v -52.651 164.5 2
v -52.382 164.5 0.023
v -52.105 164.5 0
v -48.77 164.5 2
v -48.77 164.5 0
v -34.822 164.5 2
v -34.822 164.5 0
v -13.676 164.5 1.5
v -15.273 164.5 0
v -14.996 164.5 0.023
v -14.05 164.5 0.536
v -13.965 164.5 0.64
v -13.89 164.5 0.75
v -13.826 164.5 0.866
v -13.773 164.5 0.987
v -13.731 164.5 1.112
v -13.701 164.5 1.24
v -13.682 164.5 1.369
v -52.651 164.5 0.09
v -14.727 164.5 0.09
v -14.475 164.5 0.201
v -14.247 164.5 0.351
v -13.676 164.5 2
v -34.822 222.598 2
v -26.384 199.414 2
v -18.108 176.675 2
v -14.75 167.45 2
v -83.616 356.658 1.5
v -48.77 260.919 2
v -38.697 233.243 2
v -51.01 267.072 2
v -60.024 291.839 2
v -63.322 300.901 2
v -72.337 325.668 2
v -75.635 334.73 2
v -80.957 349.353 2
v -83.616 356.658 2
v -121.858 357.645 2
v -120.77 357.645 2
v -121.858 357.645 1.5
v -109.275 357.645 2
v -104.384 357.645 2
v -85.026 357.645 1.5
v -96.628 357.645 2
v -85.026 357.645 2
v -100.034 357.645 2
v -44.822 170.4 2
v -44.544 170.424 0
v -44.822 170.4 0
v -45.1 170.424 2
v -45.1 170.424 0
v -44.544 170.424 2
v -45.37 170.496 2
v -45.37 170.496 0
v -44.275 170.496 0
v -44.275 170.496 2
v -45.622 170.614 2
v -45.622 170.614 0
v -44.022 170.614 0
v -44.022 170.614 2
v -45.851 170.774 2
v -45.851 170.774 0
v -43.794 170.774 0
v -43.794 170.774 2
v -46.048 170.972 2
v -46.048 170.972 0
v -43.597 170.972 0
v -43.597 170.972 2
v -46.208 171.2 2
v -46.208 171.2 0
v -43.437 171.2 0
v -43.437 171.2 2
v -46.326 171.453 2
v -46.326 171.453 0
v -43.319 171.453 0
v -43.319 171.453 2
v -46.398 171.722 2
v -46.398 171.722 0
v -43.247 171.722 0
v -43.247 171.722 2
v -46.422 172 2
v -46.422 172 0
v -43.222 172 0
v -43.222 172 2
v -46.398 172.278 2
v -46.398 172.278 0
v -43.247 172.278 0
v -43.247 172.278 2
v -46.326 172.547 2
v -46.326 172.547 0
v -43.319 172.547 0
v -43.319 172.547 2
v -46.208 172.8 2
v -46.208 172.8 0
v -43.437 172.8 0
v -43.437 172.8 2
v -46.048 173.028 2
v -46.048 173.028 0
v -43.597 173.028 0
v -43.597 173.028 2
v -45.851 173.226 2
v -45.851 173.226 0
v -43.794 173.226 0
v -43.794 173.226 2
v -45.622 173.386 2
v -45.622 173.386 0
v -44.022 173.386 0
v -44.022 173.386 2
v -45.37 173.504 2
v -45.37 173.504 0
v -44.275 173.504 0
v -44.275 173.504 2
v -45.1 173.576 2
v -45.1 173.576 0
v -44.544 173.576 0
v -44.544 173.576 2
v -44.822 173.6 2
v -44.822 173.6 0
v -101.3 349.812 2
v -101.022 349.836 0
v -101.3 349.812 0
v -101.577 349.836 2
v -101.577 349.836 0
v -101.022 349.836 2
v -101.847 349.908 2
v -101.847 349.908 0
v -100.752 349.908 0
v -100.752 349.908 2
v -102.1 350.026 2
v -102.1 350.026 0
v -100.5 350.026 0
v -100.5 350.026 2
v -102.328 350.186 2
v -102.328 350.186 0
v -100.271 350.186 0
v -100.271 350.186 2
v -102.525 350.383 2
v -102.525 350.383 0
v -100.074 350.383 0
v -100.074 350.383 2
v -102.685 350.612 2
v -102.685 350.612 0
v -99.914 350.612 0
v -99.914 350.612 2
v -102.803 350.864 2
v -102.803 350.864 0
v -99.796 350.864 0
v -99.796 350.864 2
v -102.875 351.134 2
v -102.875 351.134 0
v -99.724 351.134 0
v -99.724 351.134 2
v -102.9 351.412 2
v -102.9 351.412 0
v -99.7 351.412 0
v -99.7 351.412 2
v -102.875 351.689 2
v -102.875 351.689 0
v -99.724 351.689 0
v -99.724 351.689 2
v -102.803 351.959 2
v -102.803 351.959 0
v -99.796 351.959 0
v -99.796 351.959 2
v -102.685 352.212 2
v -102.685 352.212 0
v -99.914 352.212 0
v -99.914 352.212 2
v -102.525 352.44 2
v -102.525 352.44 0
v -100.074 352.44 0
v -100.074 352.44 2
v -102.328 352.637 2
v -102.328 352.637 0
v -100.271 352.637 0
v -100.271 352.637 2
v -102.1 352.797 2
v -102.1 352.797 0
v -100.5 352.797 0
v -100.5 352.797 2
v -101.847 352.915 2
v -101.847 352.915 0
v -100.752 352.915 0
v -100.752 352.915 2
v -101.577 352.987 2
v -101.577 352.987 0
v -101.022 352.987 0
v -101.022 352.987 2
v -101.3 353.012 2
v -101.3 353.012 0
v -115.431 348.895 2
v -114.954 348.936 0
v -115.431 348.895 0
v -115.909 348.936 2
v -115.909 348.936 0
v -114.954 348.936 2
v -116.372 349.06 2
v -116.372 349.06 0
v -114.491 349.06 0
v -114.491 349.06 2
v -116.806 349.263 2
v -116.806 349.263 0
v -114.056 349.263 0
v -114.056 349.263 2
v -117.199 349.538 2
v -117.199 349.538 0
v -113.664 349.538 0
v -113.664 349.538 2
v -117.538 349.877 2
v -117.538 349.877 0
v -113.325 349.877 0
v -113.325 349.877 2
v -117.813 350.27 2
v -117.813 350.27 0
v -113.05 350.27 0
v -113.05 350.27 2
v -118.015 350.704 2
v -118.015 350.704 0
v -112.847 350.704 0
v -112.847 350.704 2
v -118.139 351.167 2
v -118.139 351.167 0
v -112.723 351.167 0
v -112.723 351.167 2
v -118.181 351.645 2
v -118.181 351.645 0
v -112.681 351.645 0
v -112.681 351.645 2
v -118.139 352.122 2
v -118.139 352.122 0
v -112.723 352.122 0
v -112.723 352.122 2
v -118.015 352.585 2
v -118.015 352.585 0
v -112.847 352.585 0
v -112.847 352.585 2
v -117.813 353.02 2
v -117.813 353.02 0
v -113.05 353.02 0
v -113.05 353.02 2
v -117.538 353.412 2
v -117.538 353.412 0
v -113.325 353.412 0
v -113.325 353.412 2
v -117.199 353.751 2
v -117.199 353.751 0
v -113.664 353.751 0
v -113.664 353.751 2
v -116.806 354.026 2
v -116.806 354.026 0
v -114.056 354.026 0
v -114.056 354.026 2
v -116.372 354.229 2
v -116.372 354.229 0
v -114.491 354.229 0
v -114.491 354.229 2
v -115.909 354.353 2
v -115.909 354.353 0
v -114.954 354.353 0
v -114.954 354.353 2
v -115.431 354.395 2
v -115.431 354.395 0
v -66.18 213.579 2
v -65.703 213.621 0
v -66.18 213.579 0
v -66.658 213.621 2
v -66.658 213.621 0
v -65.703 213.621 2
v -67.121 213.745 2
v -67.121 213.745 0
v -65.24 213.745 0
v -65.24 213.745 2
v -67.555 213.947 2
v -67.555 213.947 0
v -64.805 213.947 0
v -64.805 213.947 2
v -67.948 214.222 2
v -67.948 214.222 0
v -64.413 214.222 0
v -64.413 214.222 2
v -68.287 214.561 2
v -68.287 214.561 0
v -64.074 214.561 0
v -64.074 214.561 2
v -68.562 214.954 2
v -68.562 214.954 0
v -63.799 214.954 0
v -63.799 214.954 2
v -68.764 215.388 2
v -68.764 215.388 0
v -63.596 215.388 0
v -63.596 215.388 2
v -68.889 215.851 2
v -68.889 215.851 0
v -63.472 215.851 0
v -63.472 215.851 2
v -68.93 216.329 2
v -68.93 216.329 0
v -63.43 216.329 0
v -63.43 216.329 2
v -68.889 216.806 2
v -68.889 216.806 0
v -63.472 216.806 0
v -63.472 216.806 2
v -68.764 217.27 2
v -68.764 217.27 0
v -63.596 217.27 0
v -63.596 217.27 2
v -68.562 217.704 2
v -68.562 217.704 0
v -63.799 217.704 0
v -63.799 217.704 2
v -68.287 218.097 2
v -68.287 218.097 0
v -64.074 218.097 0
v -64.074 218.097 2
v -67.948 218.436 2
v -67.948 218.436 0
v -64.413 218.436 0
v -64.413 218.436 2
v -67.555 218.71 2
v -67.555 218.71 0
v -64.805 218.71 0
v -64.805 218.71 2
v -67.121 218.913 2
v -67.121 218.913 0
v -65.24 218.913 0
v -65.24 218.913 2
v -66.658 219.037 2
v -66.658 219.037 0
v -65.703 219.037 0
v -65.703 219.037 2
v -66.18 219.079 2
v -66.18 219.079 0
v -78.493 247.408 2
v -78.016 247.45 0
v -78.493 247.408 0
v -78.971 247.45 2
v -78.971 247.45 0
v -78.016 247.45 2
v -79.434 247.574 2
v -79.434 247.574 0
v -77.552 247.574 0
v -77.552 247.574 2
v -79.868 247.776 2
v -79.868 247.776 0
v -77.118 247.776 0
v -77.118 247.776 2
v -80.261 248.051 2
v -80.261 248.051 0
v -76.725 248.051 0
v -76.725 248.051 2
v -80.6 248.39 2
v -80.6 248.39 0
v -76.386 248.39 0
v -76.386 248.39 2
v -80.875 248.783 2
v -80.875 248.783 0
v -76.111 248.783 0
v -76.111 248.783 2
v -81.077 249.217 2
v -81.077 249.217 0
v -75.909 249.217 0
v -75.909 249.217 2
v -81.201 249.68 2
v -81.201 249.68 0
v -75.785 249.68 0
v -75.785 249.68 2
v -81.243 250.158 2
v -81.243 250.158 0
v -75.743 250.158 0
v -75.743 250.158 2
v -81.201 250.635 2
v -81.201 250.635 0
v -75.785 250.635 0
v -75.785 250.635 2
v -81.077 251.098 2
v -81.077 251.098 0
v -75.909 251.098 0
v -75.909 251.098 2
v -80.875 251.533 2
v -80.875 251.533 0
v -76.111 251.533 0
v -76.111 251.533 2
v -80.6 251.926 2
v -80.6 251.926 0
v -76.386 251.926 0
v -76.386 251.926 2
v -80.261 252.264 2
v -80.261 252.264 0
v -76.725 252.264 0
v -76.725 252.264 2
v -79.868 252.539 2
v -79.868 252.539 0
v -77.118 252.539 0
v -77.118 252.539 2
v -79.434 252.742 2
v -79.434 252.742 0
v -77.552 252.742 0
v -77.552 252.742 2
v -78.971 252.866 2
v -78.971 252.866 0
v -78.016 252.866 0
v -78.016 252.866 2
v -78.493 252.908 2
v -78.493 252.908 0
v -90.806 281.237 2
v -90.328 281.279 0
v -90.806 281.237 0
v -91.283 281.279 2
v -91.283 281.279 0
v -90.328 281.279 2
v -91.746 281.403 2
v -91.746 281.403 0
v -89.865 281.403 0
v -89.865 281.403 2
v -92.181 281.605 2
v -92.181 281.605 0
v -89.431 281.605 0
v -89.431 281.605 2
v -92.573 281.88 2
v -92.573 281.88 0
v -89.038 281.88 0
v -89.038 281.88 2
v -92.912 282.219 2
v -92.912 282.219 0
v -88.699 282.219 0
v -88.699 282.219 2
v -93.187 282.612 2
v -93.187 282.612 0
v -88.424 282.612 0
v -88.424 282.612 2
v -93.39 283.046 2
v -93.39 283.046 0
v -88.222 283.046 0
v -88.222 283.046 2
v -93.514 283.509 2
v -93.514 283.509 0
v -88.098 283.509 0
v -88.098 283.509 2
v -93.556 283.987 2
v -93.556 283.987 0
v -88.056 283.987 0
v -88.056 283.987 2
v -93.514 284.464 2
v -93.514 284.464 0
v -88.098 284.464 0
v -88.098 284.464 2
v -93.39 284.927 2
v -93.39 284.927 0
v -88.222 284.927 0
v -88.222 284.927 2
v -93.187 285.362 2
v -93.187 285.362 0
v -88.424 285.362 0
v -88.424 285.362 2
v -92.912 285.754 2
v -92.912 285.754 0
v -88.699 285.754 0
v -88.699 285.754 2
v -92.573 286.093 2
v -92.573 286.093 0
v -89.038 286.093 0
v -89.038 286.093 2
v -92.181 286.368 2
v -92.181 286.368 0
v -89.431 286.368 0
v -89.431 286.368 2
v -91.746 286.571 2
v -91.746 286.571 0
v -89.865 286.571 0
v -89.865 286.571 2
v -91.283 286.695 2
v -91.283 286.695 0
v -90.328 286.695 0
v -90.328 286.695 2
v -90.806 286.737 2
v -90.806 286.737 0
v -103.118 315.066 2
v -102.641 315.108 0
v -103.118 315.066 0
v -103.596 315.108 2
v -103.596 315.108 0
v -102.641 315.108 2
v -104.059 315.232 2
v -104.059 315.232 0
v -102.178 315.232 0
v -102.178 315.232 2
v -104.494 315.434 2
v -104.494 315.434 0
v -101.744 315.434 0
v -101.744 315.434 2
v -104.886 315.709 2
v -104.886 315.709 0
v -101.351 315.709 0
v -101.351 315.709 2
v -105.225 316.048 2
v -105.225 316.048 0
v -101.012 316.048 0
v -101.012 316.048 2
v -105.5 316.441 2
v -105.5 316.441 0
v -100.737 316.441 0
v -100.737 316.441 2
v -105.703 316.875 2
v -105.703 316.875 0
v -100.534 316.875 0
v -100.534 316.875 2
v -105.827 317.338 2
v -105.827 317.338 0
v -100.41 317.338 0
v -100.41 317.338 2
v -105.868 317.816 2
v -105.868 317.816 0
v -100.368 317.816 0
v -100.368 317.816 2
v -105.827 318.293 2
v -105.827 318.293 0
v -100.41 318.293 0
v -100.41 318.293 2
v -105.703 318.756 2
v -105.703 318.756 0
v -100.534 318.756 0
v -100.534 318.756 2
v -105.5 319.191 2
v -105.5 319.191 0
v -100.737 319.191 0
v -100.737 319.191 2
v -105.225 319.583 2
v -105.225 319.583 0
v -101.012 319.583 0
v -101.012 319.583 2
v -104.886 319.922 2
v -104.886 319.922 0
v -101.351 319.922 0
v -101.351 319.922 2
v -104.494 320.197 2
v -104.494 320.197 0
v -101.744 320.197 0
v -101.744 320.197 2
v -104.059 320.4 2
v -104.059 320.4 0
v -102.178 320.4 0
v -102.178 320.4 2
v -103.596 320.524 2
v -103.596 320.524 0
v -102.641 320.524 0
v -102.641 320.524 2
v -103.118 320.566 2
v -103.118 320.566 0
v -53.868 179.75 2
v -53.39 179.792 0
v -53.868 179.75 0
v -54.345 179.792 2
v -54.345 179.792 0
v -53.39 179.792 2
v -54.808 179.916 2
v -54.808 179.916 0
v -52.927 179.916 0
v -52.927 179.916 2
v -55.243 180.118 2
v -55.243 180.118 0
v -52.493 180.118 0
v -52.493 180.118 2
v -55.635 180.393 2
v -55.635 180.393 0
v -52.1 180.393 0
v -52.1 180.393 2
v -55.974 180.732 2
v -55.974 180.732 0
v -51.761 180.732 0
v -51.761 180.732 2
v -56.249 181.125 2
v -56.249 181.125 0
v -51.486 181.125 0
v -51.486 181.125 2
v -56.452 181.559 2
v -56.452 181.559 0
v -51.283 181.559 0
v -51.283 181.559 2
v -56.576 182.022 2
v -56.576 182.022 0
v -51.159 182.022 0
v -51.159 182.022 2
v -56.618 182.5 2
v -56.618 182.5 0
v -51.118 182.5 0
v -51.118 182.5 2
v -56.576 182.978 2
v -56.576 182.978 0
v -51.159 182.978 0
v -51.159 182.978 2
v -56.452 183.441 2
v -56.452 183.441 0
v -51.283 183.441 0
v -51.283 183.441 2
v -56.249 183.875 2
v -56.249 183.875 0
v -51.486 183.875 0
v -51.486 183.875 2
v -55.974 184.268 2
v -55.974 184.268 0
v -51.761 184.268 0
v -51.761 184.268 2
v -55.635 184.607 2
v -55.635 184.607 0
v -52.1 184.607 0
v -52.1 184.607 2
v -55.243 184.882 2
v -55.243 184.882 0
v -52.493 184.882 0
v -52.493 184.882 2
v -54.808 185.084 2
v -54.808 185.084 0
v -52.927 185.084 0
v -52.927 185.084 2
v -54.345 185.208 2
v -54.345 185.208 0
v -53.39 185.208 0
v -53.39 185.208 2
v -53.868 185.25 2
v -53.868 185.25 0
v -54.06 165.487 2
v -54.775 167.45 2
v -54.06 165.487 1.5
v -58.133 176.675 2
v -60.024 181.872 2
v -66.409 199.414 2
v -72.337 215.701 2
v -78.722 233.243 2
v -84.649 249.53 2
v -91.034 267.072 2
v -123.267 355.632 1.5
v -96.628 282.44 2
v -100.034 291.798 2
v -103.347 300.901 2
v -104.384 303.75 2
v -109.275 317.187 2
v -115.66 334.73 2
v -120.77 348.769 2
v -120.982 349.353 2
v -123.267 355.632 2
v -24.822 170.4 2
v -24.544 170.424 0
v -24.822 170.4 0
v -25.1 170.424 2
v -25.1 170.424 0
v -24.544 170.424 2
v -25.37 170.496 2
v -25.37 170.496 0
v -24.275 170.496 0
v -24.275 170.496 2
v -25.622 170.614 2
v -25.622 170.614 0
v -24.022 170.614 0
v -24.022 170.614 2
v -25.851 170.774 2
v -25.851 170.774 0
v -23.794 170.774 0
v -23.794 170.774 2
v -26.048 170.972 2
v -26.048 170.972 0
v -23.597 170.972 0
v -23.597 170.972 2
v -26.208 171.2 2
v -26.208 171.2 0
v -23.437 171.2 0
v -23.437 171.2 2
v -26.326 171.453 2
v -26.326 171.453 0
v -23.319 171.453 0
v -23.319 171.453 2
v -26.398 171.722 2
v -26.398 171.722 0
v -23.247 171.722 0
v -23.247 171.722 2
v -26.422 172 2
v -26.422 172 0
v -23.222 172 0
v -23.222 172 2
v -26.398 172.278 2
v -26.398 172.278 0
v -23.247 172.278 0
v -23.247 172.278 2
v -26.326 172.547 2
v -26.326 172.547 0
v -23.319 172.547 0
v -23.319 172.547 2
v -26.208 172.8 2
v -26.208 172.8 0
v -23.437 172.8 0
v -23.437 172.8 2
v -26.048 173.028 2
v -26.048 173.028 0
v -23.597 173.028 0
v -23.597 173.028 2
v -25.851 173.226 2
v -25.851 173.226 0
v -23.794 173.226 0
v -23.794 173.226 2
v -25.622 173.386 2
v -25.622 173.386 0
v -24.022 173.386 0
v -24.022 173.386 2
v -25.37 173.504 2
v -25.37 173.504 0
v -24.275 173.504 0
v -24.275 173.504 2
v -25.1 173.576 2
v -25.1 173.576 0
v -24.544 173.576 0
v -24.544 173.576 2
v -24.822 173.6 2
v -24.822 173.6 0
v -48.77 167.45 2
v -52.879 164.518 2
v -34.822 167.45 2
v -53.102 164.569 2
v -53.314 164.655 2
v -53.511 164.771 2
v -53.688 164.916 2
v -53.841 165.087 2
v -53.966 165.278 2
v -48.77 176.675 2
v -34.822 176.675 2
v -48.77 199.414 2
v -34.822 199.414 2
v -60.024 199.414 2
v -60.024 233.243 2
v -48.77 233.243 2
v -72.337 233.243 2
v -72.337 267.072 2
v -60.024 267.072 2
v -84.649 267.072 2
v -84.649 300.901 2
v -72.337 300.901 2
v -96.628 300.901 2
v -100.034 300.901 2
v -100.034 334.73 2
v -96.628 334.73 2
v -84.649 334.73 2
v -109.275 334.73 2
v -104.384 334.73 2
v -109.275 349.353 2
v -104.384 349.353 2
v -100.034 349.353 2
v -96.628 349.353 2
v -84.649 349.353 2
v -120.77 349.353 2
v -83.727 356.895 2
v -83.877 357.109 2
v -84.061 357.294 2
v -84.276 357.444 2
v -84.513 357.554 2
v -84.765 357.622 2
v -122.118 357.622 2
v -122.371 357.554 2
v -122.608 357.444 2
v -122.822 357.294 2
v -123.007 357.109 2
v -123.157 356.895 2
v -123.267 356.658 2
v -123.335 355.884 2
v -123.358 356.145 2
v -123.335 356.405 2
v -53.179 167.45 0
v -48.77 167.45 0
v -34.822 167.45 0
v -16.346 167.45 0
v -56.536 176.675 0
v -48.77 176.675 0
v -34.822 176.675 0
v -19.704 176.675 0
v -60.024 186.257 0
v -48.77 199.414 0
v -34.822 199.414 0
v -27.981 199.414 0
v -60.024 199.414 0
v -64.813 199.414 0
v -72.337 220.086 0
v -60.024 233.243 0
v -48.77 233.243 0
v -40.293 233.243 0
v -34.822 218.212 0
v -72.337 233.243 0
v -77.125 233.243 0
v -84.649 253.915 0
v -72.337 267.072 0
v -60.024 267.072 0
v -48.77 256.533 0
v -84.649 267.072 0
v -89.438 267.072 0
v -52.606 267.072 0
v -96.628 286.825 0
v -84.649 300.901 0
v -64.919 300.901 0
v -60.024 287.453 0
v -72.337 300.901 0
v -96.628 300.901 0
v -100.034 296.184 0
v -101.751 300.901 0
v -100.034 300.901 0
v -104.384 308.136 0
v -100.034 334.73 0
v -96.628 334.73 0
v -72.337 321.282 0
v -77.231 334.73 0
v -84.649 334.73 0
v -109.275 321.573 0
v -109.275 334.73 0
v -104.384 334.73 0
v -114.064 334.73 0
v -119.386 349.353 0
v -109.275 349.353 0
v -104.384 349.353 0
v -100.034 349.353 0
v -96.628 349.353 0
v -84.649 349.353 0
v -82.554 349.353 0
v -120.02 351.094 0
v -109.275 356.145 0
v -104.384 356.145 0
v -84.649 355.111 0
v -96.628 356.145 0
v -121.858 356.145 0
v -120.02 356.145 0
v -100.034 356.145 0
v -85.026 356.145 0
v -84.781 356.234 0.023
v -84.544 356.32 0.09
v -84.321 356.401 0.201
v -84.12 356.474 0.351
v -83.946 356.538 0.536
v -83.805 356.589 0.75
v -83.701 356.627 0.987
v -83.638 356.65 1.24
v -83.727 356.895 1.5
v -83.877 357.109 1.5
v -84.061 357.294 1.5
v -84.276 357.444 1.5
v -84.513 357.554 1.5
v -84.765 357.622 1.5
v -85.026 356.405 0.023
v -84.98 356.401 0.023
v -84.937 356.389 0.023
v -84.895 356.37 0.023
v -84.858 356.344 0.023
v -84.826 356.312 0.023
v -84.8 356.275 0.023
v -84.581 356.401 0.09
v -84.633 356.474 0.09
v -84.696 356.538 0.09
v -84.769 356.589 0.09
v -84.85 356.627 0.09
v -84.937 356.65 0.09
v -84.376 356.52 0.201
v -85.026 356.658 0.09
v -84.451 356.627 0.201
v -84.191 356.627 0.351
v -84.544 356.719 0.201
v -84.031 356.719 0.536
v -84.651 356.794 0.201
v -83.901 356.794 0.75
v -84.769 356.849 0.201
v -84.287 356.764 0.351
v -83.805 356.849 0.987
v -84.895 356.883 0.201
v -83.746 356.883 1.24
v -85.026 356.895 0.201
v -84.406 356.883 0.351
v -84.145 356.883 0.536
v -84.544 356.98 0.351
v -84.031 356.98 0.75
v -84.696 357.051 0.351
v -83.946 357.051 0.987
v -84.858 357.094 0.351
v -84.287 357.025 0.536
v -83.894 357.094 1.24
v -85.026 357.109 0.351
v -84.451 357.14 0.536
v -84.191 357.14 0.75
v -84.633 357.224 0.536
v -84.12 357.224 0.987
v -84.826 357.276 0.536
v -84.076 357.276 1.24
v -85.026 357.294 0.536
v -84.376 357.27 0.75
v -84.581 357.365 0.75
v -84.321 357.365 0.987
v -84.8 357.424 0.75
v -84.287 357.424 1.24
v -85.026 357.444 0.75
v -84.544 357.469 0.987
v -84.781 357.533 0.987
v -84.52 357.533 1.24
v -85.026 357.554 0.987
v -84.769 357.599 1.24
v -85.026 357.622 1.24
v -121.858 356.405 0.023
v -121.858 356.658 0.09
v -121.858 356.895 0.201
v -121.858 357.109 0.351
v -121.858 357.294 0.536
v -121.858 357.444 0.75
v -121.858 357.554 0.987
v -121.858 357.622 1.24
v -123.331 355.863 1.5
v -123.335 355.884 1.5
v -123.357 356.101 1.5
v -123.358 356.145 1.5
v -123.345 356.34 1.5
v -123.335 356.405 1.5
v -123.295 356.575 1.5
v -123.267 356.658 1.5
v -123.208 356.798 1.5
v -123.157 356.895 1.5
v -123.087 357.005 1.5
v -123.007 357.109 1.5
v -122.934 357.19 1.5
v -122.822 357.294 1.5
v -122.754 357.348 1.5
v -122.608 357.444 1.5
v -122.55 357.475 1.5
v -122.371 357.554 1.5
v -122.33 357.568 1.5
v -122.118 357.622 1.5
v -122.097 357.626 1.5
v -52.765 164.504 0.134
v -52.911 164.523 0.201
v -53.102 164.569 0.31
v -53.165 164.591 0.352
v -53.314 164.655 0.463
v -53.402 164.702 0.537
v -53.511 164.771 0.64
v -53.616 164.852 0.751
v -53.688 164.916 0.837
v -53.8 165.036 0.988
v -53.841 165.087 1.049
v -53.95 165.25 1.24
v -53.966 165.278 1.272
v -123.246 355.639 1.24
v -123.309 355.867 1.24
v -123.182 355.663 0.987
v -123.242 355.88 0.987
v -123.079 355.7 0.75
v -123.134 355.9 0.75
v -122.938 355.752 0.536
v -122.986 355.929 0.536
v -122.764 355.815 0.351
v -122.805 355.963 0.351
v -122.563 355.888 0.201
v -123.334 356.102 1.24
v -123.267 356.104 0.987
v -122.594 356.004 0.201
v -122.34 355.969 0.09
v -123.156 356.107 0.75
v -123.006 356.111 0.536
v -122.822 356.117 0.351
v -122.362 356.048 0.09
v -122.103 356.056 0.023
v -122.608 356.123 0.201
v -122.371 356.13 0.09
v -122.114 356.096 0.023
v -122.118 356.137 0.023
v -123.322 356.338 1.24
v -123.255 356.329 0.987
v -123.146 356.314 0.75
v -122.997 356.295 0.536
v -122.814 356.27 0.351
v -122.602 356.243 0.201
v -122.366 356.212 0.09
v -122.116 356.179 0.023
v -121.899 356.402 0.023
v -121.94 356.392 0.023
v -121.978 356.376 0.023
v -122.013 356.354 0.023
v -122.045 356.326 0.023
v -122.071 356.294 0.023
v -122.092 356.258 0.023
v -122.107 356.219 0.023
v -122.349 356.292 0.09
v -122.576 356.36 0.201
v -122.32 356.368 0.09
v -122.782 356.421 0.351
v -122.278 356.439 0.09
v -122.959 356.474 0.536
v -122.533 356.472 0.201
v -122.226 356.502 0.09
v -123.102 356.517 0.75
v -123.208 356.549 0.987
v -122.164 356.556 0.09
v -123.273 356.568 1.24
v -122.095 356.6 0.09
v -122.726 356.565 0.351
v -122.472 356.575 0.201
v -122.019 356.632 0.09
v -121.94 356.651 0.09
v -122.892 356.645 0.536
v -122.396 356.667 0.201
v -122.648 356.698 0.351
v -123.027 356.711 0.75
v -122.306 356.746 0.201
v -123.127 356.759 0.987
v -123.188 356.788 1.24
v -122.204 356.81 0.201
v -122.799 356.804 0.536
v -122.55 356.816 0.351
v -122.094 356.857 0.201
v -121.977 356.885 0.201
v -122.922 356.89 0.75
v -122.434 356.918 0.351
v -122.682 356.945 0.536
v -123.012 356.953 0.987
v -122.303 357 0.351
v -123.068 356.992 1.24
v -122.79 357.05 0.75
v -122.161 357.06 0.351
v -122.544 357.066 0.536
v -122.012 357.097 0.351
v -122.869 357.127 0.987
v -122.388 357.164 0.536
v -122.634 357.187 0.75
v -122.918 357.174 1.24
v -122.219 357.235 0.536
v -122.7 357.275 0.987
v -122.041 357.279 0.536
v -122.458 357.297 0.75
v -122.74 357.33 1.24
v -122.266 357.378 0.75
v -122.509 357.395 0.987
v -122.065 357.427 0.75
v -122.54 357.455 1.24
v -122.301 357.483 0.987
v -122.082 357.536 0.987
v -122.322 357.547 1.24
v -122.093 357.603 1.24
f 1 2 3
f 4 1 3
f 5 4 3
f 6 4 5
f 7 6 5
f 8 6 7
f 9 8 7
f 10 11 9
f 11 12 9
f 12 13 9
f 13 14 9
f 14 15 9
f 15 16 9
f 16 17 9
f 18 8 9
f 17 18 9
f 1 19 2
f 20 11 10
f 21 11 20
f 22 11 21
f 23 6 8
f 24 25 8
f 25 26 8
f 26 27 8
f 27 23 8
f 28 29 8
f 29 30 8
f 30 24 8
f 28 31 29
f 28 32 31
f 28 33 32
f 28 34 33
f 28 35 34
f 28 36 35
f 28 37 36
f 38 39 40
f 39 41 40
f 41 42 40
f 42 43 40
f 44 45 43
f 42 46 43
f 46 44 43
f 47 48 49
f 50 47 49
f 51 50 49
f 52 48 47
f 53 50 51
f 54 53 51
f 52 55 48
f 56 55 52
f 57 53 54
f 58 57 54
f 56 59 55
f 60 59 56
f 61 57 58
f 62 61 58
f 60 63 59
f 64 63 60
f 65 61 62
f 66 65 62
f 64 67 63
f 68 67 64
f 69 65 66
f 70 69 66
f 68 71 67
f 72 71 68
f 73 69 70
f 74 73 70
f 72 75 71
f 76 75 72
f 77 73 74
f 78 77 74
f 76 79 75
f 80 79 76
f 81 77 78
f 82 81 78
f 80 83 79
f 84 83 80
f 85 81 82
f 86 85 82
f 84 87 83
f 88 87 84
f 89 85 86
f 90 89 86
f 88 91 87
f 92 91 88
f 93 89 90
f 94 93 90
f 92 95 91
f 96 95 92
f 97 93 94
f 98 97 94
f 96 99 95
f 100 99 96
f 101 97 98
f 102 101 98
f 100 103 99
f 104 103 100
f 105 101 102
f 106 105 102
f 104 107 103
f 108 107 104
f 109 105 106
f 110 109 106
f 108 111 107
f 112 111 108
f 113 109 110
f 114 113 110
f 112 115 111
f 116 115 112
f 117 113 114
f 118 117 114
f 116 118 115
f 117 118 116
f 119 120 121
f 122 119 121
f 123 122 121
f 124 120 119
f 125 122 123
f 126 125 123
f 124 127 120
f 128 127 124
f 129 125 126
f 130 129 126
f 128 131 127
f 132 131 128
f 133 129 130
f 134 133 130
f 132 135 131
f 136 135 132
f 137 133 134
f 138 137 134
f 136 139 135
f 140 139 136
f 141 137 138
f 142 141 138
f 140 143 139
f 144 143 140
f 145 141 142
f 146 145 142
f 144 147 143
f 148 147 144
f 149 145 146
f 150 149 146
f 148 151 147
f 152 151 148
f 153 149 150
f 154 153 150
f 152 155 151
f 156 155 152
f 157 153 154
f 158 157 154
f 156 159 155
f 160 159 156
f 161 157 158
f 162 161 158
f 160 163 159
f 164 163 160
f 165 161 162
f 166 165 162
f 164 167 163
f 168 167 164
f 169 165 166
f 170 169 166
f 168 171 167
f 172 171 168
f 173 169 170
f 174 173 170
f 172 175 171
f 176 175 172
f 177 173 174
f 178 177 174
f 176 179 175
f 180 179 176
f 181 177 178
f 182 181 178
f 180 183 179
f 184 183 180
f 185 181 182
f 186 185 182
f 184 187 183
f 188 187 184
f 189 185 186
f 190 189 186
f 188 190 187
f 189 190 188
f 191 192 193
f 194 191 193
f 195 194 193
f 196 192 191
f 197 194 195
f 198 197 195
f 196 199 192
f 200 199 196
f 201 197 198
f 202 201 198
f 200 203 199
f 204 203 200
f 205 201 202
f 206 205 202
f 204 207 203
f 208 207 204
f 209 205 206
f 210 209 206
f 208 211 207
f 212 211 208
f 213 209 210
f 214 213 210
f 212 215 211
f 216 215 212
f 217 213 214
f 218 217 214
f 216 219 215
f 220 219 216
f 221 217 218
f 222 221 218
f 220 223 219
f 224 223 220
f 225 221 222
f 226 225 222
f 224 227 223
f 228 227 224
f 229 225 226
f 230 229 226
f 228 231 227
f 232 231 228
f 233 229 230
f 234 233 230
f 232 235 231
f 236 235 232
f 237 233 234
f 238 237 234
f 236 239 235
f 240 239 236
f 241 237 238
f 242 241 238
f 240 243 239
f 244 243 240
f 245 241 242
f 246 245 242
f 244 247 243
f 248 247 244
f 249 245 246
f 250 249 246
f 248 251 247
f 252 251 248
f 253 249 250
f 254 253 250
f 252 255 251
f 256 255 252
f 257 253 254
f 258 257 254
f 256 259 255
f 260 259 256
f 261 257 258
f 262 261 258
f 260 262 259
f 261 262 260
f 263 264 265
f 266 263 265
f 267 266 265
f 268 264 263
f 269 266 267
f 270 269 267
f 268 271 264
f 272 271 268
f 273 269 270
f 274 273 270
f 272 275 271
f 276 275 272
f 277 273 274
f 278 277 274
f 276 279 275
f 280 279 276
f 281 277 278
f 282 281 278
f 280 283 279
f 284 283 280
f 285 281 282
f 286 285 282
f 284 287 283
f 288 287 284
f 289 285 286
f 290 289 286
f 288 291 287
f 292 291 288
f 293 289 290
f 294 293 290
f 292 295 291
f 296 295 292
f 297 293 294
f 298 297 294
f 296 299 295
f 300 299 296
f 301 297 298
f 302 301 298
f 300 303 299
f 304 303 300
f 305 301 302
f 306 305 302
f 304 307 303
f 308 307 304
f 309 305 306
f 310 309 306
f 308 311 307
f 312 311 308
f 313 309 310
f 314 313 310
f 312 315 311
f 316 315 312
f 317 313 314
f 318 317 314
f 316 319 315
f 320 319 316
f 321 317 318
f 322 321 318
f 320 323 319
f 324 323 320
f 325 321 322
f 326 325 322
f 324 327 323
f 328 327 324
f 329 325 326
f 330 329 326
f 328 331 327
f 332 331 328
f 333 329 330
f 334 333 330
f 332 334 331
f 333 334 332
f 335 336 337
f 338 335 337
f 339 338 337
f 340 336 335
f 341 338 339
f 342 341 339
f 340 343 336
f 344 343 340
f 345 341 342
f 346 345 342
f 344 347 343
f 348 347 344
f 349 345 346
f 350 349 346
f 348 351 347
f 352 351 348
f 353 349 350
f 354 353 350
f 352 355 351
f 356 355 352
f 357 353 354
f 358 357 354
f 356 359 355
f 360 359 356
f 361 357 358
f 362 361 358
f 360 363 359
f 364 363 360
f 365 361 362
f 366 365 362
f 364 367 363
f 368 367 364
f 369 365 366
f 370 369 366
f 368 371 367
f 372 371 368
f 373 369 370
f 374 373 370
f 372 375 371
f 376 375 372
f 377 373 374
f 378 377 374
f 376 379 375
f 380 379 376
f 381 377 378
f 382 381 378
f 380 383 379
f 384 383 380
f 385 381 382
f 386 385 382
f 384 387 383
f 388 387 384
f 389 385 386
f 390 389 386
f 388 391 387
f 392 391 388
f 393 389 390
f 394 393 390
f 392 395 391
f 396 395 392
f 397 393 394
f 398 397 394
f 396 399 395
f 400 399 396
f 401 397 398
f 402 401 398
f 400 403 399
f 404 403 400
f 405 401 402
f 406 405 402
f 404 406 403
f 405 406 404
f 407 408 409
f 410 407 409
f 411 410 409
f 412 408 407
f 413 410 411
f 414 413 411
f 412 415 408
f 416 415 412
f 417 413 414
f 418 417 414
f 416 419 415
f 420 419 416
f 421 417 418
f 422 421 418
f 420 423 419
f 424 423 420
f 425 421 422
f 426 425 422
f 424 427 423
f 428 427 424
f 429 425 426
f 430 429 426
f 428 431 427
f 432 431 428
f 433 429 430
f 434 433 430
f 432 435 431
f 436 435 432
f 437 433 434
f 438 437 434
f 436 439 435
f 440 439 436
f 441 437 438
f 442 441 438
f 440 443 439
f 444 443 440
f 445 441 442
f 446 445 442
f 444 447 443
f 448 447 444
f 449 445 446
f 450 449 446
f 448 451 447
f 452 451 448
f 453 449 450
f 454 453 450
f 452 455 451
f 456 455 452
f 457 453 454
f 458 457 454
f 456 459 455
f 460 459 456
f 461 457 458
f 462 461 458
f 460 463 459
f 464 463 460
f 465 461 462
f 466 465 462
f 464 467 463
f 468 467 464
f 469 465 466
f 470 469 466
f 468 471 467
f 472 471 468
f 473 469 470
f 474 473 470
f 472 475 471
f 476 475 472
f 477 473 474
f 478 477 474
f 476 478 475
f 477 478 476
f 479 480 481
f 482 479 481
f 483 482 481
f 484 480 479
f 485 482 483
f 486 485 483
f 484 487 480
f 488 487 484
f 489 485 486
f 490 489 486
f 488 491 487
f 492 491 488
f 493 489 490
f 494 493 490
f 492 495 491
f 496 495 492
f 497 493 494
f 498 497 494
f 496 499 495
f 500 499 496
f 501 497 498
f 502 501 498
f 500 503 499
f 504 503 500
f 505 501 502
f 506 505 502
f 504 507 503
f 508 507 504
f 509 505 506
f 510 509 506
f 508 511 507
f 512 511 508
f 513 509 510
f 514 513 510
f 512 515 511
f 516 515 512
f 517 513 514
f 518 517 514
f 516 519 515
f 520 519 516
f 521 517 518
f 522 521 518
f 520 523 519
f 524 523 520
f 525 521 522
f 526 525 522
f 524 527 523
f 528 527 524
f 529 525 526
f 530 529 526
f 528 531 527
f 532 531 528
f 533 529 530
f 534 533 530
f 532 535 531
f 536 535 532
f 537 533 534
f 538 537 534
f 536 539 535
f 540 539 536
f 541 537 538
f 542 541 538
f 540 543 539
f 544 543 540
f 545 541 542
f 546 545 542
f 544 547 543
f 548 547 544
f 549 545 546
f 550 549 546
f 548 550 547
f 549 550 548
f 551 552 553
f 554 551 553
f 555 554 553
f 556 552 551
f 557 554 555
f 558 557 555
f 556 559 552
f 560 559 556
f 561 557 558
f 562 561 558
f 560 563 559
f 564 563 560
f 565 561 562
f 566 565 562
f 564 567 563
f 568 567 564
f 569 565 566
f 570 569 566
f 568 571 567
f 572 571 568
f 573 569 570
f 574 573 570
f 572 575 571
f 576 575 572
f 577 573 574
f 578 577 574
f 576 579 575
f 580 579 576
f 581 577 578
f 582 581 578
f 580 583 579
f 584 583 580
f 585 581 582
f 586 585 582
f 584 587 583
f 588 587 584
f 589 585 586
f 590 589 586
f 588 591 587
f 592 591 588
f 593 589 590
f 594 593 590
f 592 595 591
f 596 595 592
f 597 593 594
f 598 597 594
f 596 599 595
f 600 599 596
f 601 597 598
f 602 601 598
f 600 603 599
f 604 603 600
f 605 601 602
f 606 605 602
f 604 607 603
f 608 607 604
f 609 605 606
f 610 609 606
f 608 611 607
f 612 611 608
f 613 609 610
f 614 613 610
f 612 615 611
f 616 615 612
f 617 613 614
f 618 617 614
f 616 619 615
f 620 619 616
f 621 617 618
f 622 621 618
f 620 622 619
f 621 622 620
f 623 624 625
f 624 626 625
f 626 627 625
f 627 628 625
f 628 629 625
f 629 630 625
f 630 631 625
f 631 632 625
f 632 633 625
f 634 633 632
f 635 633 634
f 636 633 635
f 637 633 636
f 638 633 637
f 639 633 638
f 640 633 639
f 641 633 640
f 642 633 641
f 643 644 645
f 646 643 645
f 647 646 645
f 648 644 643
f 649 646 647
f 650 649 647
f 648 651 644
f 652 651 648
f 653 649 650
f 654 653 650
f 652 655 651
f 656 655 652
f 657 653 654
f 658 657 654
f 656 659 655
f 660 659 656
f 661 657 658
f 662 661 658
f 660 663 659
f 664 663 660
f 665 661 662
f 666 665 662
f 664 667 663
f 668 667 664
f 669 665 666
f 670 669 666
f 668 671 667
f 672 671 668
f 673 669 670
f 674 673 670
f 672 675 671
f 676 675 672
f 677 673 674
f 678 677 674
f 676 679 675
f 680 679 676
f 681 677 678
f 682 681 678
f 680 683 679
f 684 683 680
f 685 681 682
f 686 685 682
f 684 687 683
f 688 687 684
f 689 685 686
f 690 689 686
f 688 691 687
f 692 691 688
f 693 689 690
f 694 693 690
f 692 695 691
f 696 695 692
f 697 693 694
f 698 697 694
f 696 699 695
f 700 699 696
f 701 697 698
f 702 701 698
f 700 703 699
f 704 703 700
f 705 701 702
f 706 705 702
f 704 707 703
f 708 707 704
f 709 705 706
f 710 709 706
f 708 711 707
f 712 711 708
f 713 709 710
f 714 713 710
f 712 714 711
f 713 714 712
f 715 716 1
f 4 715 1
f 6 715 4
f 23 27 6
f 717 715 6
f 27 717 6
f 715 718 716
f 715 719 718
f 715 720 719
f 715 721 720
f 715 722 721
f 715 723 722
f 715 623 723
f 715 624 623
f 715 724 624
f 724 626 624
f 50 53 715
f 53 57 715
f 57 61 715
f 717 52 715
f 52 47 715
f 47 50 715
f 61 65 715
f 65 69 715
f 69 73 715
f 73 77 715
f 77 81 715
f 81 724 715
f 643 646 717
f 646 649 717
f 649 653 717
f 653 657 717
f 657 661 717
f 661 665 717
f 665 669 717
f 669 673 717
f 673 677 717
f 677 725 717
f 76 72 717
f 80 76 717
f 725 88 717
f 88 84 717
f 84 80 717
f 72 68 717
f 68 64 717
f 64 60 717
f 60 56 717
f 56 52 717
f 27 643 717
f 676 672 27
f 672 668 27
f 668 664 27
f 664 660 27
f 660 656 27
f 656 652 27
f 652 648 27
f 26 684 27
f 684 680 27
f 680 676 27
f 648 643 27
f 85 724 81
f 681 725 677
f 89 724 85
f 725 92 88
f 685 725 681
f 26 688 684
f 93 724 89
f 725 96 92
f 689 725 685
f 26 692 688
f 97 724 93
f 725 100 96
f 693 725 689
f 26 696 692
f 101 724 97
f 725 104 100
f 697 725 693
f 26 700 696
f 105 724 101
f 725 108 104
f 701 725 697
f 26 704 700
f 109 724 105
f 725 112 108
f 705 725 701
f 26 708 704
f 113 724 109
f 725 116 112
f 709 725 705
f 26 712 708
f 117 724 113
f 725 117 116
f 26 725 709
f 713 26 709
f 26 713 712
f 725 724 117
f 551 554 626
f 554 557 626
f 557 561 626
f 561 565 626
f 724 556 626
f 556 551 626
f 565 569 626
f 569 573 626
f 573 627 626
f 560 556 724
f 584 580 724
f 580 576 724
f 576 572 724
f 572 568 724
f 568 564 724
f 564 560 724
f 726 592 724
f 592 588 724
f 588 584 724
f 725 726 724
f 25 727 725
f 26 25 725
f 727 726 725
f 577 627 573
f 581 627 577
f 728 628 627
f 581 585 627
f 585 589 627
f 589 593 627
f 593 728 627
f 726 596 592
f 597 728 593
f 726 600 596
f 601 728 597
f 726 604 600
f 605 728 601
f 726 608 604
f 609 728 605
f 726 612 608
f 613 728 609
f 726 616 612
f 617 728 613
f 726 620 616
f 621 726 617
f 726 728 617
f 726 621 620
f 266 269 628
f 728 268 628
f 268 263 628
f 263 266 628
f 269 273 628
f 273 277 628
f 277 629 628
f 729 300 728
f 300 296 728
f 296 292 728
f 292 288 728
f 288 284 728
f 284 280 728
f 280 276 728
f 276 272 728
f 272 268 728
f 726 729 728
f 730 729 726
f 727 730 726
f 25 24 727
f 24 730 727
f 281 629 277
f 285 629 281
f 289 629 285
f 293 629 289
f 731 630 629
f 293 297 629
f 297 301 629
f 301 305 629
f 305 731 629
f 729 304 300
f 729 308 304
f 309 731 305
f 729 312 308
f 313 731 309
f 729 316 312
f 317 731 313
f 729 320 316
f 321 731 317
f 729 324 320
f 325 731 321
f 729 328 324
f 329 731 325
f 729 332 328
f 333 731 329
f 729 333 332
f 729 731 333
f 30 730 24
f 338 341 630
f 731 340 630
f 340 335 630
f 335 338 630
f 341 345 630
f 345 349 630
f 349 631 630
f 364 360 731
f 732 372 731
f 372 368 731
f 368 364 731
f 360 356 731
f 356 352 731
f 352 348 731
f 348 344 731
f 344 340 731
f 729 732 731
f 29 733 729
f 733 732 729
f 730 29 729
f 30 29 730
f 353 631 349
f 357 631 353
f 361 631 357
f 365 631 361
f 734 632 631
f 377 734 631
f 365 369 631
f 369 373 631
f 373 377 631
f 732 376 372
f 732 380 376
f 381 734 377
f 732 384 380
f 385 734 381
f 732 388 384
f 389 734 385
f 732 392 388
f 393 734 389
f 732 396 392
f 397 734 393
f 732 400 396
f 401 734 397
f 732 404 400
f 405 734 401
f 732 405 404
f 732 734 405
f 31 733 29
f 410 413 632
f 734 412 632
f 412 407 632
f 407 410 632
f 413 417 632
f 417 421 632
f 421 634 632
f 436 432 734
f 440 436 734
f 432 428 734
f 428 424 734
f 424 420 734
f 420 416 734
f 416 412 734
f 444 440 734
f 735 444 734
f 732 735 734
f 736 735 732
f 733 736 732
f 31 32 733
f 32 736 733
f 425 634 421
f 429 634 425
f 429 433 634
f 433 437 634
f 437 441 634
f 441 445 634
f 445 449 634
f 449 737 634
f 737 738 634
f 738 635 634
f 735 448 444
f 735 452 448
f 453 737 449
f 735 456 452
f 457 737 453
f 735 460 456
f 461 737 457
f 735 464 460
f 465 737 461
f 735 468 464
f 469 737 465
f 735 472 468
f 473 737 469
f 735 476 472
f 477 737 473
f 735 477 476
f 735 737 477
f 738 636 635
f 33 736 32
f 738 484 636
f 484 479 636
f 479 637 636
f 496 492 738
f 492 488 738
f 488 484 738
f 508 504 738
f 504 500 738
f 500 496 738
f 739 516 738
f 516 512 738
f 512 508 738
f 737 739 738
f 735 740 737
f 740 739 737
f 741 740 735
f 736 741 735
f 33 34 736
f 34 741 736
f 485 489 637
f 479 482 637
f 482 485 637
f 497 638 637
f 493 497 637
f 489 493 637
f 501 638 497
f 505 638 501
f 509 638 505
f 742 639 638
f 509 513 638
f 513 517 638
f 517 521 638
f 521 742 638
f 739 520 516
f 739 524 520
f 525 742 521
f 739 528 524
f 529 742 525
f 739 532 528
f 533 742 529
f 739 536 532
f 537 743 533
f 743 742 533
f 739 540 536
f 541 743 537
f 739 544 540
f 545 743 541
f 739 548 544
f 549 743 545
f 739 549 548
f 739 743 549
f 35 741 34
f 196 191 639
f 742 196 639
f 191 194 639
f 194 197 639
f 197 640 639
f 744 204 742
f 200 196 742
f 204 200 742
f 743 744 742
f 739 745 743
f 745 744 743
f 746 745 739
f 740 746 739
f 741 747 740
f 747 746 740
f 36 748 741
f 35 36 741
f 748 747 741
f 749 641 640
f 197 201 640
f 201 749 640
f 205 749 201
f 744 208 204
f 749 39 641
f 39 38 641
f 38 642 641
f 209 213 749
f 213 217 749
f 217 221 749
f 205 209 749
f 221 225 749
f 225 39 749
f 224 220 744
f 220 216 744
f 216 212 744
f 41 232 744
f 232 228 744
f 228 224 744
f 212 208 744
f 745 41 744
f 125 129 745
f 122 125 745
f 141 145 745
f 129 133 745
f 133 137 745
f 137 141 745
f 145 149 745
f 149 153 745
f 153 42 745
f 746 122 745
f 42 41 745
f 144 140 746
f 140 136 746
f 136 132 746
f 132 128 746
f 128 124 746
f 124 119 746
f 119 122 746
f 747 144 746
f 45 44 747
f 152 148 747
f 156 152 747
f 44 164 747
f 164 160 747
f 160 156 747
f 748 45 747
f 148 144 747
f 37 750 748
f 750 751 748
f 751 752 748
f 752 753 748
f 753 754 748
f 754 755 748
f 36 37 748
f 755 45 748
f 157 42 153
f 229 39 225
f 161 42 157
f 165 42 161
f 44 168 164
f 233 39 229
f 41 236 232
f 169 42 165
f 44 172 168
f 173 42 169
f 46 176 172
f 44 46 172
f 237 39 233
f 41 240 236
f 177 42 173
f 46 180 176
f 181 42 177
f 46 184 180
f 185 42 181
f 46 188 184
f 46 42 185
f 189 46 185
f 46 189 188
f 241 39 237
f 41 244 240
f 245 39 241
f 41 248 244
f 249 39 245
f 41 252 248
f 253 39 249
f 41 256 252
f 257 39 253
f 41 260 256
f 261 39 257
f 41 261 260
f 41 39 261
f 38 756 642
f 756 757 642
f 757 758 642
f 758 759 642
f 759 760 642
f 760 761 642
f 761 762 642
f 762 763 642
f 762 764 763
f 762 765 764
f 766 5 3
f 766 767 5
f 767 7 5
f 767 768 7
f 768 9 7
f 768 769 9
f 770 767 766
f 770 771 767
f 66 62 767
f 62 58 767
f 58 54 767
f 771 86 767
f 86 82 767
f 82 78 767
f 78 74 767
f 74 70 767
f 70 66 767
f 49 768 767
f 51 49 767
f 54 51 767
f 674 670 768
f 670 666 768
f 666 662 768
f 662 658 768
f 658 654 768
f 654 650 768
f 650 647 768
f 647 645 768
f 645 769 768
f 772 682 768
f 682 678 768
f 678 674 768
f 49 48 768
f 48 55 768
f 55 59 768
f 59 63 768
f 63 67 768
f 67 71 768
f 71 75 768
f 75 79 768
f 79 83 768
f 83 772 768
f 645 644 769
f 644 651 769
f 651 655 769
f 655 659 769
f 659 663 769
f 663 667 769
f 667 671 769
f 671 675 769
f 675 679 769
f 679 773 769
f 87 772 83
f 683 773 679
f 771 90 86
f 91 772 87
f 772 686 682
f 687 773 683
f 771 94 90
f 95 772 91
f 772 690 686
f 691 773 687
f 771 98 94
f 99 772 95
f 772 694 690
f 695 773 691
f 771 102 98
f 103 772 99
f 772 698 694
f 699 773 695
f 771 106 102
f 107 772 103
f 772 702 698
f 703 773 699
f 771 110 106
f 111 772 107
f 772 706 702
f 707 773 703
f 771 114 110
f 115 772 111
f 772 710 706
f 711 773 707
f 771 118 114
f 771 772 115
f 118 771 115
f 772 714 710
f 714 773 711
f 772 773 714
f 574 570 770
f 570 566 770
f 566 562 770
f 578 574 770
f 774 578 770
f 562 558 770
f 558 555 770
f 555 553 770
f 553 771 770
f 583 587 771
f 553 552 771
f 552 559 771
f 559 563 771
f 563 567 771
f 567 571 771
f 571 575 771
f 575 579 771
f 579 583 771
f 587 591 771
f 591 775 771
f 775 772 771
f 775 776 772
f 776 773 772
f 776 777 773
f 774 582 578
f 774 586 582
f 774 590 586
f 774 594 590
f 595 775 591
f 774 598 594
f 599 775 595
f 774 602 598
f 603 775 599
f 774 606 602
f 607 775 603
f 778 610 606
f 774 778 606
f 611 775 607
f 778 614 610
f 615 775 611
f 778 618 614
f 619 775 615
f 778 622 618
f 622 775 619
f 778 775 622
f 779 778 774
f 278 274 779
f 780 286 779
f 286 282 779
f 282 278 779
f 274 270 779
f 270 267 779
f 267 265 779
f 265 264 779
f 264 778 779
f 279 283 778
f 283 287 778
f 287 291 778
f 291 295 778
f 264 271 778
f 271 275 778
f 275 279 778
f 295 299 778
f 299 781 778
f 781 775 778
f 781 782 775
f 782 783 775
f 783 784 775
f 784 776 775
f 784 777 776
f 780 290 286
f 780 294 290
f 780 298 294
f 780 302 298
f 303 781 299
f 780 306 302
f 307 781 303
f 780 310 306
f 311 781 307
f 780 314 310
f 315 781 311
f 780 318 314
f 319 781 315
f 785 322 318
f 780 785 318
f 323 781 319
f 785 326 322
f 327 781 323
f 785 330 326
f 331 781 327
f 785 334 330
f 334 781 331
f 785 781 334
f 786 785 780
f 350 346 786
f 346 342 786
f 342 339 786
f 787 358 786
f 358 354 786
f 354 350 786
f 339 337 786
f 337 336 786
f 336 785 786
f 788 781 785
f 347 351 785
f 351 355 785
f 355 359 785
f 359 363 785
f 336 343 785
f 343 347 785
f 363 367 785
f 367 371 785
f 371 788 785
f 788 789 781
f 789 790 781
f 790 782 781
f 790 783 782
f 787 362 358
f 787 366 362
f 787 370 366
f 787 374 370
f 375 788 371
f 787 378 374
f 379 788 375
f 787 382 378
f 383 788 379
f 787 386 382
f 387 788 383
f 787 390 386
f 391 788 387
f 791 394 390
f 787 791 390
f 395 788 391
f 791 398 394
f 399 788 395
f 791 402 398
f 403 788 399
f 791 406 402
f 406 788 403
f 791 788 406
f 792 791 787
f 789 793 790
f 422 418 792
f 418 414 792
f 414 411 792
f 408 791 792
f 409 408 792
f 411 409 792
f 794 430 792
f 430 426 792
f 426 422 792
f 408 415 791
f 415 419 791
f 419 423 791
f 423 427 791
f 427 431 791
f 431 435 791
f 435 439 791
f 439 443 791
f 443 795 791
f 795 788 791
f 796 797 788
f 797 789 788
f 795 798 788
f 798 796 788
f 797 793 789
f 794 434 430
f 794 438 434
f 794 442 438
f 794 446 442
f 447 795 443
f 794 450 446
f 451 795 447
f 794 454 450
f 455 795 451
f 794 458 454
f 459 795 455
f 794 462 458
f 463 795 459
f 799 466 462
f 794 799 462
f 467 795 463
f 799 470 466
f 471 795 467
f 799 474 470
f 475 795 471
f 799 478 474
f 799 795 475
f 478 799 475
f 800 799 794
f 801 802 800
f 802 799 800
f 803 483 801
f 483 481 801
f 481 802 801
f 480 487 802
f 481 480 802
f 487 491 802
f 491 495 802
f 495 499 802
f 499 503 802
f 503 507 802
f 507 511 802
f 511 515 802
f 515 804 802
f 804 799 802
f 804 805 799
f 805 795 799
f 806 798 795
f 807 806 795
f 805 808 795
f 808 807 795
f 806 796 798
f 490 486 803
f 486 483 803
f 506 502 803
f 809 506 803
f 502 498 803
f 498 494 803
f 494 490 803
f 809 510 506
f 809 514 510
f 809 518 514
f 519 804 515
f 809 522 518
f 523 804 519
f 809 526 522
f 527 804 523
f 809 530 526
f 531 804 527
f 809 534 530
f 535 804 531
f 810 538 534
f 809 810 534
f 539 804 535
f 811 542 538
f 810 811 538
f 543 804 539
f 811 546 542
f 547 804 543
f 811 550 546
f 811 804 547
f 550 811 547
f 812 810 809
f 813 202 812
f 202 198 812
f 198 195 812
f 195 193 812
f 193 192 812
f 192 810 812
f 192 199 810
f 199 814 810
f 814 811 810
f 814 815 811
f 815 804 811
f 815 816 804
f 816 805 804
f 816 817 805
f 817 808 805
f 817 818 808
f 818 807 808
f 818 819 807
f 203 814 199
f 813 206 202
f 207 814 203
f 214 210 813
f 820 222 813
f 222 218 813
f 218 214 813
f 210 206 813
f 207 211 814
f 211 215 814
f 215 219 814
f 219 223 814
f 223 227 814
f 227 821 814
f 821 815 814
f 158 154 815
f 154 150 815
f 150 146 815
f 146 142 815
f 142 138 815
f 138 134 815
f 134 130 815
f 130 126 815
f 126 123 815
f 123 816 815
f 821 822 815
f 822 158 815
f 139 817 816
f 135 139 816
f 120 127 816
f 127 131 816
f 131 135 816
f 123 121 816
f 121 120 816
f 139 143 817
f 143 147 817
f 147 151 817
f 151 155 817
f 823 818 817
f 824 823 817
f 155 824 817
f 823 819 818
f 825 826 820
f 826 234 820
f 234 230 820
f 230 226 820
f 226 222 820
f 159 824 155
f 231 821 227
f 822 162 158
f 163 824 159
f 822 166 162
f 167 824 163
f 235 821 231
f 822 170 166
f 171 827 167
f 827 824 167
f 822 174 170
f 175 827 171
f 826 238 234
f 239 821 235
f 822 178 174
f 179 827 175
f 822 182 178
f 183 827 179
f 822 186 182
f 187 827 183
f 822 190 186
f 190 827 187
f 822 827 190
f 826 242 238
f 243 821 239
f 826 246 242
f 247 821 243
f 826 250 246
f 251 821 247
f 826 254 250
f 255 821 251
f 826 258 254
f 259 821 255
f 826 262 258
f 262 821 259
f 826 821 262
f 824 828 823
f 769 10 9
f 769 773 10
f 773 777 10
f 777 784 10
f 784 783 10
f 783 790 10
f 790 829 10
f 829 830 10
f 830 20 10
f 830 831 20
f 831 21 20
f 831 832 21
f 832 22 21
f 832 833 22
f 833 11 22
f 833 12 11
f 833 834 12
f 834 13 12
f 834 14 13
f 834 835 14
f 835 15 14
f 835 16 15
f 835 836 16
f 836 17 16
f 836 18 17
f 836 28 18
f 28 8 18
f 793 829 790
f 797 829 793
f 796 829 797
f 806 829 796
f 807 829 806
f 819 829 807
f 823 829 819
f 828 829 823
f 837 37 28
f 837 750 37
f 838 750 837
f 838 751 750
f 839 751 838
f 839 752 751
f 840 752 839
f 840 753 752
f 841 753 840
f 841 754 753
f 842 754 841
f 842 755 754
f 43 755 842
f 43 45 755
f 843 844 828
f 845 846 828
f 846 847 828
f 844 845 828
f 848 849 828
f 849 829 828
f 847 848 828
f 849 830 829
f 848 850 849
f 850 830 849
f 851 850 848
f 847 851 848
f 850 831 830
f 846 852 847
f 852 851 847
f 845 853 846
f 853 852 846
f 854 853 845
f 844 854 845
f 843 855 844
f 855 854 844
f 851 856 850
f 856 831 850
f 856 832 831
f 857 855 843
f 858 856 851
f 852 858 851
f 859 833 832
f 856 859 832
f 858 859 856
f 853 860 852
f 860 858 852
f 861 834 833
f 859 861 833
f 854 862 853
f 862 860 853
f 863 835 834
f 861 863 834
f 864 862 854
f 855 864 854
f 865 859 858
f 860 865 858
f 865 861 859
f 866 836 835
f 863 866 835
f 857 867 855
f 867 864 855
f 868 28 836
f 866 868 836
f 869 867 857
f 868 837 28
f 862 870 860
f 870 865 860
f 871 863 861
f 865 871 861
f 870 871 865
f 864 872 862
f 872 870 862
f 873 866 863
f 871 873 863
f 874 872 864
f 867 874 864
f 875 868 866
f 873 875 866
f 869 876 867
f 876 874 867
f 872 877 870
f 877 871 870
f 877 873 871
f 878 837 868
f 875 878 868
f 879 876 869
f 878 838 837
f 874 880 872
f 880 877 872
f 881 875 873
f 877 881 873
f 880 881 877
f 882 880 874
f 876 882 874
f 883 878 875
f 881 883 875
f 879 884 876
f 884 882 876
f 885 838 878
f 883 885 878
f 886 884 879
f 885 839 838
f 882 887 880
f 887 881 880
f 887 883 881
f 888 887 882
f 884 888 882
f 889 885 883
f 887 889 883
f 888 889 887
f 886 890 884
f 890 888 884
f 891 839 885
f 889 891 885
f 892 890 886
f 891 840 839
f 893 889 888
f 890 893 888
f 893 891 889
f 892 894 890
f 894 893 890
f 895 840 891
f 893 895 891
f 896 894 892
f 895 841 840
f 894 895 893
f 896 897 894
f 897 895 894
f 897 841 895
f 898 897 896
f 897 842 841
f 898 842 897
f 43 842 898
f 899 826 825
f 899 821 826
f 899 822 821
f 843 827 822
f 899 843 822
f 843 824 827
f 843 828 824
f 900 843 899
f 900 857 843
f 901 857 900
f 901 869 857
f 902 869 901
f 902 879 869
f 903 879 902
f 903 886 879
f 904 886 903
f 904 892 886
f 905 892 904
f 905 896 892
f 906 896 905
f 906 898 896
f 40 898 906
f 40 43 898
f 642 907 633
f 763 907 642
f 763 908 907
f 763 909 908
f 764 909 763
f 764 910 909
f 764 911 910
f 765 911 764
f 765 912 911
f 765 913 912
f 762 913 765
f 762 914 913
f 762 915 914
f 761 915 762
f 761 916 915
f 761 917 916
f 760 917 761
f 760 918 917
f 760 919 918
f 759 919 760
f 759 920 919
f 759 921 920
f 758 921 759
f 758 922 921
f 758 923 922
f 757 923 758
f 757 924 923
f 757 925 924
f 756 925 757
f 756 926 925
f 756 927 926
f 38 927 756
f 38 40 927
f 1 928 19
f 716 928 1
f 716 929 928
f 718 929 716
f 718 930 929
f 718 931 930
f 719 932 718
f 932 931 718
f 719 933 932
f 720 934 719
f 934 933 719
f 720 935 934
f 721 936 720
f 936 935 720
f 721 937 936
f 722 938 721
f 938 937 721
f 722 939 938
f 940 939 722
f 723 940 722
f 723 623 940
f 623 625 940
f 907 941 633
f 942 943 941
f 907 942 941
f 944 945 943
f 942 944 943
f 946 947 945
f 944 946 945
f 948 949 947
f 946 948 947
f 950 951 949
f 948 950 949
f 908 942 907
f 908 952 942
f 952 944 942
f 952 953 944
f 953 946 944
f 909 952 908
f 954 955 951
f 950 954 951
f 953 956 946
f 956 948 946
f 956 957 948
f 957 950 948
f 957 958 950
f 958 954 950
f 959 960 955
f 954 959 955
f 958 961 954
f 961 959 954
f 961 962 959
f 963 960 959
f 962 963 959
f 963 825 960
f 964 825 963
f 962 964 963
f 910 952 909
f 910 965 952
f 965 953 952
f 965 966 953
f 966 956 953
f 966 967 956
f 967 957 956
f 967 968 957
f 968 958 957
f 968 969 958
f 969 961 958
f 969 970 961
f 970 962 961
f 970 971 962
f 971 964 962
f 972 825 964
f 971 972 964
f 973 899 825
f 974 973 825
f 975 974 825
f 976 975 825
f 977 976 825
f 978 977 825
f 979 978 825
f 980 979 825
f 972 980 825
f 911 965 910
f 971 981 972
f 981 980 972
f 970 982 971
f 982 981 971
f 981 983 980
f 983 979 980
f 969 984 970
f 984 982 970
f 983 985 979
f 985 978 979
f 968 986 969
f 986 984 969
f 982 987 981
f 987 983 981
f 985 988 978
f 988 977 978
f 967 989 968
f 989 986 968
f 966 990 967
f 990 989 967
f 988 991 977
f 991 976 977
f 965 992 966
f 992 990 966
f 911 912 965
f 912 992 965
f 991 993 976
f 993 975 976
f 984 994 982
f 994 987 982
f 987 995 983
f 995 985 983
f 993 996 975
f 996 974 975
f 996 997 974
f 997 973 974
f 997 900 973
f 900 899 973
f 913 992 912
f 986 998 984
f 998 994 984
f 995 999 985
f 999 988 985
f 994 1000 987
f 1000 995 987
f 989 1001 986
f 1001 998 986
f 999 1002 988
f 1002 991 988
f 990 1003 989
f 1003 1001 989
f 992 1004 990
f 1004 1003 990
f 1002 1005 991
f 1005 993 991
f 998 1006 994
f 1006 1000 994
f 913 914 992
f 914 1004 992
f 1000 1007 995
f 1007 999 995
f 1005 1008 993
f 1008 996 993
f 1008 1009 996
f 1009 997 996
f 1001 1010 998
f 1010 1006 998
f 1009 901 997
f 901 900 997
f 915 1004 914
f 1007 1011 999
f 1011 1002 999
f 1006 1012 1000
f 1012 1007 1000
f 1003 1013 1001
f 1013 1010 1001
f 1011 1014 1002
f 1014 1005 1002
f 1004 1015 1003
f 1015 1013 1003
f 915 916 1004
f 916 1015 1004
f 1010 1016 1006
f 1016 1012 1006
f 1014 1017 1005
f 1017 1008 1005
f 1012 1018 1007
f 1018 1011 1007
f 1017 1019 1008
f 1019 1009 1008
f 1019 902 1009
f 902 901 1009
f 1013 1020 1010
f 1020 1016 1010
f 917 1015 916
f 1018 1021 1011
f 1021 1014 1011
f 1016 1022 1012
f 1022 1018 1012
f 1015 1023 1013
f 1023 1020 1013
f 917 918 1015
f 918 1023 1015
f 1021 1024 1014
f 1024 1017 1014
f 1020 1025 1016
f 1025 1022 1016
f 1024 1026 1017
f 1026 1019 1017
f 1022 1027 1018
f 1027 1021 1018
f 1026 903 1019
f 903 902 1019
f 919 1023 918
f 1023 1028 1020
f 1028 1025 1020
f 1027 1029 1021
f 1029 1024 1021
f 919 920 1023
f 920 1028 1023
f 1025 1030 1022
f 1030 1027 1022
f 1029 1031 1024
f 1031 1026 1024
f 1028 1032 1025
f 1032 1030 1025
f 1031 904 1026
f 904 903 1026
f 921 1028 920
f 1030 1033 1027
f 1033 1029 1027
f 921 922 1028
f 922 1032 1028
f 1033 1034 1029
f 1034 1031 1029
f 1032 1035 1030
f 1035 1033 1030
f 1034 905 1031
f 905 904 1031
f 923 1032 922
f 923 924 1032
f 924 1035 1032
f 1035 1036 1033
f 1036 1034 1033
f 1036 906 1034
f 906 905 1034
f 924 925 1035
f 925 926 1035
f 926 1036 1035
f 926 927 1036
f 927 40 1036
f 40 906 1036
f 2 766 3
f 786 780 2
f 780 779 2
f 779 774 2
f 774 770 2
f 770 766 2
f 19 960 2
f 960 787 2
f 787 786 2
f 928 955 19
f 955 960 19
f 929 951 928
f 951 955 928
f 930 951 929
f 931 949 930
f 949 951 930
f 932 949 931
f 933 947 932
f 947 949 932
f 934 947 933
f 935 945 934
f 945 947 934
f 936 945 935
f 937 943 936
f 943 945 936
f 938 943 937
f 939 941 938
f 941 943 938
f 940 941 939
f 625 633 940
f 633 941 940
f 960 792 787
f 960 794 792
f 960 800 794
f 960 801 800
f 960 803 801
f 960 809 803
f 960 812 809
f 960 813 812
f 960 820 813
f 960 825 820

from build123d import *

# Parameters (mm, degrees)
SKETCH2_R           = 2.75
SKETCH2_R_2         = 1.6
BOSS_EXTRUDE1_DEPTH = 2
FILLET1_R           = 1.5


with BuildPart() as part:
    # Sketch2 → Boss-Extrude1 (new body)
    with BuildSketch(Plane.XY):
        Polygon((-13.676428112, 164.5), (-83.975339533, 357.644671741), (-124.00010851, 357.644671741), (-53.701197089, 164.5), align=None)
        with Locations((-78.493044991, 250.157868697)):
            Circle(SKETCH2_R, mode=Mode.SUBTRACT)
        with Locations((-53.867594671, 182.5)):
            Circle(SKETCH2_R, mode=Mode.SUBTRACT)
        with Locations((-66.180319831, 216.328934348)):
            Circle(SKETCH2_R, mode=Mode.SUBTRACT)
        with Locations((-44.822322699, 172)):
            Circle(SKETCH2_R_2, mode=Mode.SUBTRACT)
        with Locations((-24.822322699, 172)):
            Circle(SKETCH2_R_2, mode=Mode.SUBTRACT)
        with Locations((-90.805770151, 283.986803045)):
            Circle(SKETCH2_R, mode=Mode.SUBTRACT)
        with Locations((-103.11849531, 317.815737393)):
            Circle(SKETCH2_R, mode=Mode.SUBTRACT)
        with Locations((-115.43122047, 351.644671741)):
            Circle(SKETCH2_R, mode=Mode.SUBTRACT)
        with Locations((-101.29954666, 351.411510234)):
            Circle(SKETCH2_R_2, mode=Mode.SUBTRACT)
    extrude(amount=BOSS_EXTRUDE1_DEPTH)

    # Fillet1
    fillet1_edges = [part.edges().sort_by_distance(p)[0] for p in [
        (-88.8506528, 261.072335871, 0),
        (-103.987724022, 357.644671741, 0),
        (-48.825883822, 261.072335871, 0),
        (-53.701197089, 164.5, 1),
        (-124.00010851, 357.644671741, 1),
        (-83.975339533, 357.644671741, 1),
    ]]
    fillet(fillet1_edges, radius=FILLET1_R)


solid = part.part
